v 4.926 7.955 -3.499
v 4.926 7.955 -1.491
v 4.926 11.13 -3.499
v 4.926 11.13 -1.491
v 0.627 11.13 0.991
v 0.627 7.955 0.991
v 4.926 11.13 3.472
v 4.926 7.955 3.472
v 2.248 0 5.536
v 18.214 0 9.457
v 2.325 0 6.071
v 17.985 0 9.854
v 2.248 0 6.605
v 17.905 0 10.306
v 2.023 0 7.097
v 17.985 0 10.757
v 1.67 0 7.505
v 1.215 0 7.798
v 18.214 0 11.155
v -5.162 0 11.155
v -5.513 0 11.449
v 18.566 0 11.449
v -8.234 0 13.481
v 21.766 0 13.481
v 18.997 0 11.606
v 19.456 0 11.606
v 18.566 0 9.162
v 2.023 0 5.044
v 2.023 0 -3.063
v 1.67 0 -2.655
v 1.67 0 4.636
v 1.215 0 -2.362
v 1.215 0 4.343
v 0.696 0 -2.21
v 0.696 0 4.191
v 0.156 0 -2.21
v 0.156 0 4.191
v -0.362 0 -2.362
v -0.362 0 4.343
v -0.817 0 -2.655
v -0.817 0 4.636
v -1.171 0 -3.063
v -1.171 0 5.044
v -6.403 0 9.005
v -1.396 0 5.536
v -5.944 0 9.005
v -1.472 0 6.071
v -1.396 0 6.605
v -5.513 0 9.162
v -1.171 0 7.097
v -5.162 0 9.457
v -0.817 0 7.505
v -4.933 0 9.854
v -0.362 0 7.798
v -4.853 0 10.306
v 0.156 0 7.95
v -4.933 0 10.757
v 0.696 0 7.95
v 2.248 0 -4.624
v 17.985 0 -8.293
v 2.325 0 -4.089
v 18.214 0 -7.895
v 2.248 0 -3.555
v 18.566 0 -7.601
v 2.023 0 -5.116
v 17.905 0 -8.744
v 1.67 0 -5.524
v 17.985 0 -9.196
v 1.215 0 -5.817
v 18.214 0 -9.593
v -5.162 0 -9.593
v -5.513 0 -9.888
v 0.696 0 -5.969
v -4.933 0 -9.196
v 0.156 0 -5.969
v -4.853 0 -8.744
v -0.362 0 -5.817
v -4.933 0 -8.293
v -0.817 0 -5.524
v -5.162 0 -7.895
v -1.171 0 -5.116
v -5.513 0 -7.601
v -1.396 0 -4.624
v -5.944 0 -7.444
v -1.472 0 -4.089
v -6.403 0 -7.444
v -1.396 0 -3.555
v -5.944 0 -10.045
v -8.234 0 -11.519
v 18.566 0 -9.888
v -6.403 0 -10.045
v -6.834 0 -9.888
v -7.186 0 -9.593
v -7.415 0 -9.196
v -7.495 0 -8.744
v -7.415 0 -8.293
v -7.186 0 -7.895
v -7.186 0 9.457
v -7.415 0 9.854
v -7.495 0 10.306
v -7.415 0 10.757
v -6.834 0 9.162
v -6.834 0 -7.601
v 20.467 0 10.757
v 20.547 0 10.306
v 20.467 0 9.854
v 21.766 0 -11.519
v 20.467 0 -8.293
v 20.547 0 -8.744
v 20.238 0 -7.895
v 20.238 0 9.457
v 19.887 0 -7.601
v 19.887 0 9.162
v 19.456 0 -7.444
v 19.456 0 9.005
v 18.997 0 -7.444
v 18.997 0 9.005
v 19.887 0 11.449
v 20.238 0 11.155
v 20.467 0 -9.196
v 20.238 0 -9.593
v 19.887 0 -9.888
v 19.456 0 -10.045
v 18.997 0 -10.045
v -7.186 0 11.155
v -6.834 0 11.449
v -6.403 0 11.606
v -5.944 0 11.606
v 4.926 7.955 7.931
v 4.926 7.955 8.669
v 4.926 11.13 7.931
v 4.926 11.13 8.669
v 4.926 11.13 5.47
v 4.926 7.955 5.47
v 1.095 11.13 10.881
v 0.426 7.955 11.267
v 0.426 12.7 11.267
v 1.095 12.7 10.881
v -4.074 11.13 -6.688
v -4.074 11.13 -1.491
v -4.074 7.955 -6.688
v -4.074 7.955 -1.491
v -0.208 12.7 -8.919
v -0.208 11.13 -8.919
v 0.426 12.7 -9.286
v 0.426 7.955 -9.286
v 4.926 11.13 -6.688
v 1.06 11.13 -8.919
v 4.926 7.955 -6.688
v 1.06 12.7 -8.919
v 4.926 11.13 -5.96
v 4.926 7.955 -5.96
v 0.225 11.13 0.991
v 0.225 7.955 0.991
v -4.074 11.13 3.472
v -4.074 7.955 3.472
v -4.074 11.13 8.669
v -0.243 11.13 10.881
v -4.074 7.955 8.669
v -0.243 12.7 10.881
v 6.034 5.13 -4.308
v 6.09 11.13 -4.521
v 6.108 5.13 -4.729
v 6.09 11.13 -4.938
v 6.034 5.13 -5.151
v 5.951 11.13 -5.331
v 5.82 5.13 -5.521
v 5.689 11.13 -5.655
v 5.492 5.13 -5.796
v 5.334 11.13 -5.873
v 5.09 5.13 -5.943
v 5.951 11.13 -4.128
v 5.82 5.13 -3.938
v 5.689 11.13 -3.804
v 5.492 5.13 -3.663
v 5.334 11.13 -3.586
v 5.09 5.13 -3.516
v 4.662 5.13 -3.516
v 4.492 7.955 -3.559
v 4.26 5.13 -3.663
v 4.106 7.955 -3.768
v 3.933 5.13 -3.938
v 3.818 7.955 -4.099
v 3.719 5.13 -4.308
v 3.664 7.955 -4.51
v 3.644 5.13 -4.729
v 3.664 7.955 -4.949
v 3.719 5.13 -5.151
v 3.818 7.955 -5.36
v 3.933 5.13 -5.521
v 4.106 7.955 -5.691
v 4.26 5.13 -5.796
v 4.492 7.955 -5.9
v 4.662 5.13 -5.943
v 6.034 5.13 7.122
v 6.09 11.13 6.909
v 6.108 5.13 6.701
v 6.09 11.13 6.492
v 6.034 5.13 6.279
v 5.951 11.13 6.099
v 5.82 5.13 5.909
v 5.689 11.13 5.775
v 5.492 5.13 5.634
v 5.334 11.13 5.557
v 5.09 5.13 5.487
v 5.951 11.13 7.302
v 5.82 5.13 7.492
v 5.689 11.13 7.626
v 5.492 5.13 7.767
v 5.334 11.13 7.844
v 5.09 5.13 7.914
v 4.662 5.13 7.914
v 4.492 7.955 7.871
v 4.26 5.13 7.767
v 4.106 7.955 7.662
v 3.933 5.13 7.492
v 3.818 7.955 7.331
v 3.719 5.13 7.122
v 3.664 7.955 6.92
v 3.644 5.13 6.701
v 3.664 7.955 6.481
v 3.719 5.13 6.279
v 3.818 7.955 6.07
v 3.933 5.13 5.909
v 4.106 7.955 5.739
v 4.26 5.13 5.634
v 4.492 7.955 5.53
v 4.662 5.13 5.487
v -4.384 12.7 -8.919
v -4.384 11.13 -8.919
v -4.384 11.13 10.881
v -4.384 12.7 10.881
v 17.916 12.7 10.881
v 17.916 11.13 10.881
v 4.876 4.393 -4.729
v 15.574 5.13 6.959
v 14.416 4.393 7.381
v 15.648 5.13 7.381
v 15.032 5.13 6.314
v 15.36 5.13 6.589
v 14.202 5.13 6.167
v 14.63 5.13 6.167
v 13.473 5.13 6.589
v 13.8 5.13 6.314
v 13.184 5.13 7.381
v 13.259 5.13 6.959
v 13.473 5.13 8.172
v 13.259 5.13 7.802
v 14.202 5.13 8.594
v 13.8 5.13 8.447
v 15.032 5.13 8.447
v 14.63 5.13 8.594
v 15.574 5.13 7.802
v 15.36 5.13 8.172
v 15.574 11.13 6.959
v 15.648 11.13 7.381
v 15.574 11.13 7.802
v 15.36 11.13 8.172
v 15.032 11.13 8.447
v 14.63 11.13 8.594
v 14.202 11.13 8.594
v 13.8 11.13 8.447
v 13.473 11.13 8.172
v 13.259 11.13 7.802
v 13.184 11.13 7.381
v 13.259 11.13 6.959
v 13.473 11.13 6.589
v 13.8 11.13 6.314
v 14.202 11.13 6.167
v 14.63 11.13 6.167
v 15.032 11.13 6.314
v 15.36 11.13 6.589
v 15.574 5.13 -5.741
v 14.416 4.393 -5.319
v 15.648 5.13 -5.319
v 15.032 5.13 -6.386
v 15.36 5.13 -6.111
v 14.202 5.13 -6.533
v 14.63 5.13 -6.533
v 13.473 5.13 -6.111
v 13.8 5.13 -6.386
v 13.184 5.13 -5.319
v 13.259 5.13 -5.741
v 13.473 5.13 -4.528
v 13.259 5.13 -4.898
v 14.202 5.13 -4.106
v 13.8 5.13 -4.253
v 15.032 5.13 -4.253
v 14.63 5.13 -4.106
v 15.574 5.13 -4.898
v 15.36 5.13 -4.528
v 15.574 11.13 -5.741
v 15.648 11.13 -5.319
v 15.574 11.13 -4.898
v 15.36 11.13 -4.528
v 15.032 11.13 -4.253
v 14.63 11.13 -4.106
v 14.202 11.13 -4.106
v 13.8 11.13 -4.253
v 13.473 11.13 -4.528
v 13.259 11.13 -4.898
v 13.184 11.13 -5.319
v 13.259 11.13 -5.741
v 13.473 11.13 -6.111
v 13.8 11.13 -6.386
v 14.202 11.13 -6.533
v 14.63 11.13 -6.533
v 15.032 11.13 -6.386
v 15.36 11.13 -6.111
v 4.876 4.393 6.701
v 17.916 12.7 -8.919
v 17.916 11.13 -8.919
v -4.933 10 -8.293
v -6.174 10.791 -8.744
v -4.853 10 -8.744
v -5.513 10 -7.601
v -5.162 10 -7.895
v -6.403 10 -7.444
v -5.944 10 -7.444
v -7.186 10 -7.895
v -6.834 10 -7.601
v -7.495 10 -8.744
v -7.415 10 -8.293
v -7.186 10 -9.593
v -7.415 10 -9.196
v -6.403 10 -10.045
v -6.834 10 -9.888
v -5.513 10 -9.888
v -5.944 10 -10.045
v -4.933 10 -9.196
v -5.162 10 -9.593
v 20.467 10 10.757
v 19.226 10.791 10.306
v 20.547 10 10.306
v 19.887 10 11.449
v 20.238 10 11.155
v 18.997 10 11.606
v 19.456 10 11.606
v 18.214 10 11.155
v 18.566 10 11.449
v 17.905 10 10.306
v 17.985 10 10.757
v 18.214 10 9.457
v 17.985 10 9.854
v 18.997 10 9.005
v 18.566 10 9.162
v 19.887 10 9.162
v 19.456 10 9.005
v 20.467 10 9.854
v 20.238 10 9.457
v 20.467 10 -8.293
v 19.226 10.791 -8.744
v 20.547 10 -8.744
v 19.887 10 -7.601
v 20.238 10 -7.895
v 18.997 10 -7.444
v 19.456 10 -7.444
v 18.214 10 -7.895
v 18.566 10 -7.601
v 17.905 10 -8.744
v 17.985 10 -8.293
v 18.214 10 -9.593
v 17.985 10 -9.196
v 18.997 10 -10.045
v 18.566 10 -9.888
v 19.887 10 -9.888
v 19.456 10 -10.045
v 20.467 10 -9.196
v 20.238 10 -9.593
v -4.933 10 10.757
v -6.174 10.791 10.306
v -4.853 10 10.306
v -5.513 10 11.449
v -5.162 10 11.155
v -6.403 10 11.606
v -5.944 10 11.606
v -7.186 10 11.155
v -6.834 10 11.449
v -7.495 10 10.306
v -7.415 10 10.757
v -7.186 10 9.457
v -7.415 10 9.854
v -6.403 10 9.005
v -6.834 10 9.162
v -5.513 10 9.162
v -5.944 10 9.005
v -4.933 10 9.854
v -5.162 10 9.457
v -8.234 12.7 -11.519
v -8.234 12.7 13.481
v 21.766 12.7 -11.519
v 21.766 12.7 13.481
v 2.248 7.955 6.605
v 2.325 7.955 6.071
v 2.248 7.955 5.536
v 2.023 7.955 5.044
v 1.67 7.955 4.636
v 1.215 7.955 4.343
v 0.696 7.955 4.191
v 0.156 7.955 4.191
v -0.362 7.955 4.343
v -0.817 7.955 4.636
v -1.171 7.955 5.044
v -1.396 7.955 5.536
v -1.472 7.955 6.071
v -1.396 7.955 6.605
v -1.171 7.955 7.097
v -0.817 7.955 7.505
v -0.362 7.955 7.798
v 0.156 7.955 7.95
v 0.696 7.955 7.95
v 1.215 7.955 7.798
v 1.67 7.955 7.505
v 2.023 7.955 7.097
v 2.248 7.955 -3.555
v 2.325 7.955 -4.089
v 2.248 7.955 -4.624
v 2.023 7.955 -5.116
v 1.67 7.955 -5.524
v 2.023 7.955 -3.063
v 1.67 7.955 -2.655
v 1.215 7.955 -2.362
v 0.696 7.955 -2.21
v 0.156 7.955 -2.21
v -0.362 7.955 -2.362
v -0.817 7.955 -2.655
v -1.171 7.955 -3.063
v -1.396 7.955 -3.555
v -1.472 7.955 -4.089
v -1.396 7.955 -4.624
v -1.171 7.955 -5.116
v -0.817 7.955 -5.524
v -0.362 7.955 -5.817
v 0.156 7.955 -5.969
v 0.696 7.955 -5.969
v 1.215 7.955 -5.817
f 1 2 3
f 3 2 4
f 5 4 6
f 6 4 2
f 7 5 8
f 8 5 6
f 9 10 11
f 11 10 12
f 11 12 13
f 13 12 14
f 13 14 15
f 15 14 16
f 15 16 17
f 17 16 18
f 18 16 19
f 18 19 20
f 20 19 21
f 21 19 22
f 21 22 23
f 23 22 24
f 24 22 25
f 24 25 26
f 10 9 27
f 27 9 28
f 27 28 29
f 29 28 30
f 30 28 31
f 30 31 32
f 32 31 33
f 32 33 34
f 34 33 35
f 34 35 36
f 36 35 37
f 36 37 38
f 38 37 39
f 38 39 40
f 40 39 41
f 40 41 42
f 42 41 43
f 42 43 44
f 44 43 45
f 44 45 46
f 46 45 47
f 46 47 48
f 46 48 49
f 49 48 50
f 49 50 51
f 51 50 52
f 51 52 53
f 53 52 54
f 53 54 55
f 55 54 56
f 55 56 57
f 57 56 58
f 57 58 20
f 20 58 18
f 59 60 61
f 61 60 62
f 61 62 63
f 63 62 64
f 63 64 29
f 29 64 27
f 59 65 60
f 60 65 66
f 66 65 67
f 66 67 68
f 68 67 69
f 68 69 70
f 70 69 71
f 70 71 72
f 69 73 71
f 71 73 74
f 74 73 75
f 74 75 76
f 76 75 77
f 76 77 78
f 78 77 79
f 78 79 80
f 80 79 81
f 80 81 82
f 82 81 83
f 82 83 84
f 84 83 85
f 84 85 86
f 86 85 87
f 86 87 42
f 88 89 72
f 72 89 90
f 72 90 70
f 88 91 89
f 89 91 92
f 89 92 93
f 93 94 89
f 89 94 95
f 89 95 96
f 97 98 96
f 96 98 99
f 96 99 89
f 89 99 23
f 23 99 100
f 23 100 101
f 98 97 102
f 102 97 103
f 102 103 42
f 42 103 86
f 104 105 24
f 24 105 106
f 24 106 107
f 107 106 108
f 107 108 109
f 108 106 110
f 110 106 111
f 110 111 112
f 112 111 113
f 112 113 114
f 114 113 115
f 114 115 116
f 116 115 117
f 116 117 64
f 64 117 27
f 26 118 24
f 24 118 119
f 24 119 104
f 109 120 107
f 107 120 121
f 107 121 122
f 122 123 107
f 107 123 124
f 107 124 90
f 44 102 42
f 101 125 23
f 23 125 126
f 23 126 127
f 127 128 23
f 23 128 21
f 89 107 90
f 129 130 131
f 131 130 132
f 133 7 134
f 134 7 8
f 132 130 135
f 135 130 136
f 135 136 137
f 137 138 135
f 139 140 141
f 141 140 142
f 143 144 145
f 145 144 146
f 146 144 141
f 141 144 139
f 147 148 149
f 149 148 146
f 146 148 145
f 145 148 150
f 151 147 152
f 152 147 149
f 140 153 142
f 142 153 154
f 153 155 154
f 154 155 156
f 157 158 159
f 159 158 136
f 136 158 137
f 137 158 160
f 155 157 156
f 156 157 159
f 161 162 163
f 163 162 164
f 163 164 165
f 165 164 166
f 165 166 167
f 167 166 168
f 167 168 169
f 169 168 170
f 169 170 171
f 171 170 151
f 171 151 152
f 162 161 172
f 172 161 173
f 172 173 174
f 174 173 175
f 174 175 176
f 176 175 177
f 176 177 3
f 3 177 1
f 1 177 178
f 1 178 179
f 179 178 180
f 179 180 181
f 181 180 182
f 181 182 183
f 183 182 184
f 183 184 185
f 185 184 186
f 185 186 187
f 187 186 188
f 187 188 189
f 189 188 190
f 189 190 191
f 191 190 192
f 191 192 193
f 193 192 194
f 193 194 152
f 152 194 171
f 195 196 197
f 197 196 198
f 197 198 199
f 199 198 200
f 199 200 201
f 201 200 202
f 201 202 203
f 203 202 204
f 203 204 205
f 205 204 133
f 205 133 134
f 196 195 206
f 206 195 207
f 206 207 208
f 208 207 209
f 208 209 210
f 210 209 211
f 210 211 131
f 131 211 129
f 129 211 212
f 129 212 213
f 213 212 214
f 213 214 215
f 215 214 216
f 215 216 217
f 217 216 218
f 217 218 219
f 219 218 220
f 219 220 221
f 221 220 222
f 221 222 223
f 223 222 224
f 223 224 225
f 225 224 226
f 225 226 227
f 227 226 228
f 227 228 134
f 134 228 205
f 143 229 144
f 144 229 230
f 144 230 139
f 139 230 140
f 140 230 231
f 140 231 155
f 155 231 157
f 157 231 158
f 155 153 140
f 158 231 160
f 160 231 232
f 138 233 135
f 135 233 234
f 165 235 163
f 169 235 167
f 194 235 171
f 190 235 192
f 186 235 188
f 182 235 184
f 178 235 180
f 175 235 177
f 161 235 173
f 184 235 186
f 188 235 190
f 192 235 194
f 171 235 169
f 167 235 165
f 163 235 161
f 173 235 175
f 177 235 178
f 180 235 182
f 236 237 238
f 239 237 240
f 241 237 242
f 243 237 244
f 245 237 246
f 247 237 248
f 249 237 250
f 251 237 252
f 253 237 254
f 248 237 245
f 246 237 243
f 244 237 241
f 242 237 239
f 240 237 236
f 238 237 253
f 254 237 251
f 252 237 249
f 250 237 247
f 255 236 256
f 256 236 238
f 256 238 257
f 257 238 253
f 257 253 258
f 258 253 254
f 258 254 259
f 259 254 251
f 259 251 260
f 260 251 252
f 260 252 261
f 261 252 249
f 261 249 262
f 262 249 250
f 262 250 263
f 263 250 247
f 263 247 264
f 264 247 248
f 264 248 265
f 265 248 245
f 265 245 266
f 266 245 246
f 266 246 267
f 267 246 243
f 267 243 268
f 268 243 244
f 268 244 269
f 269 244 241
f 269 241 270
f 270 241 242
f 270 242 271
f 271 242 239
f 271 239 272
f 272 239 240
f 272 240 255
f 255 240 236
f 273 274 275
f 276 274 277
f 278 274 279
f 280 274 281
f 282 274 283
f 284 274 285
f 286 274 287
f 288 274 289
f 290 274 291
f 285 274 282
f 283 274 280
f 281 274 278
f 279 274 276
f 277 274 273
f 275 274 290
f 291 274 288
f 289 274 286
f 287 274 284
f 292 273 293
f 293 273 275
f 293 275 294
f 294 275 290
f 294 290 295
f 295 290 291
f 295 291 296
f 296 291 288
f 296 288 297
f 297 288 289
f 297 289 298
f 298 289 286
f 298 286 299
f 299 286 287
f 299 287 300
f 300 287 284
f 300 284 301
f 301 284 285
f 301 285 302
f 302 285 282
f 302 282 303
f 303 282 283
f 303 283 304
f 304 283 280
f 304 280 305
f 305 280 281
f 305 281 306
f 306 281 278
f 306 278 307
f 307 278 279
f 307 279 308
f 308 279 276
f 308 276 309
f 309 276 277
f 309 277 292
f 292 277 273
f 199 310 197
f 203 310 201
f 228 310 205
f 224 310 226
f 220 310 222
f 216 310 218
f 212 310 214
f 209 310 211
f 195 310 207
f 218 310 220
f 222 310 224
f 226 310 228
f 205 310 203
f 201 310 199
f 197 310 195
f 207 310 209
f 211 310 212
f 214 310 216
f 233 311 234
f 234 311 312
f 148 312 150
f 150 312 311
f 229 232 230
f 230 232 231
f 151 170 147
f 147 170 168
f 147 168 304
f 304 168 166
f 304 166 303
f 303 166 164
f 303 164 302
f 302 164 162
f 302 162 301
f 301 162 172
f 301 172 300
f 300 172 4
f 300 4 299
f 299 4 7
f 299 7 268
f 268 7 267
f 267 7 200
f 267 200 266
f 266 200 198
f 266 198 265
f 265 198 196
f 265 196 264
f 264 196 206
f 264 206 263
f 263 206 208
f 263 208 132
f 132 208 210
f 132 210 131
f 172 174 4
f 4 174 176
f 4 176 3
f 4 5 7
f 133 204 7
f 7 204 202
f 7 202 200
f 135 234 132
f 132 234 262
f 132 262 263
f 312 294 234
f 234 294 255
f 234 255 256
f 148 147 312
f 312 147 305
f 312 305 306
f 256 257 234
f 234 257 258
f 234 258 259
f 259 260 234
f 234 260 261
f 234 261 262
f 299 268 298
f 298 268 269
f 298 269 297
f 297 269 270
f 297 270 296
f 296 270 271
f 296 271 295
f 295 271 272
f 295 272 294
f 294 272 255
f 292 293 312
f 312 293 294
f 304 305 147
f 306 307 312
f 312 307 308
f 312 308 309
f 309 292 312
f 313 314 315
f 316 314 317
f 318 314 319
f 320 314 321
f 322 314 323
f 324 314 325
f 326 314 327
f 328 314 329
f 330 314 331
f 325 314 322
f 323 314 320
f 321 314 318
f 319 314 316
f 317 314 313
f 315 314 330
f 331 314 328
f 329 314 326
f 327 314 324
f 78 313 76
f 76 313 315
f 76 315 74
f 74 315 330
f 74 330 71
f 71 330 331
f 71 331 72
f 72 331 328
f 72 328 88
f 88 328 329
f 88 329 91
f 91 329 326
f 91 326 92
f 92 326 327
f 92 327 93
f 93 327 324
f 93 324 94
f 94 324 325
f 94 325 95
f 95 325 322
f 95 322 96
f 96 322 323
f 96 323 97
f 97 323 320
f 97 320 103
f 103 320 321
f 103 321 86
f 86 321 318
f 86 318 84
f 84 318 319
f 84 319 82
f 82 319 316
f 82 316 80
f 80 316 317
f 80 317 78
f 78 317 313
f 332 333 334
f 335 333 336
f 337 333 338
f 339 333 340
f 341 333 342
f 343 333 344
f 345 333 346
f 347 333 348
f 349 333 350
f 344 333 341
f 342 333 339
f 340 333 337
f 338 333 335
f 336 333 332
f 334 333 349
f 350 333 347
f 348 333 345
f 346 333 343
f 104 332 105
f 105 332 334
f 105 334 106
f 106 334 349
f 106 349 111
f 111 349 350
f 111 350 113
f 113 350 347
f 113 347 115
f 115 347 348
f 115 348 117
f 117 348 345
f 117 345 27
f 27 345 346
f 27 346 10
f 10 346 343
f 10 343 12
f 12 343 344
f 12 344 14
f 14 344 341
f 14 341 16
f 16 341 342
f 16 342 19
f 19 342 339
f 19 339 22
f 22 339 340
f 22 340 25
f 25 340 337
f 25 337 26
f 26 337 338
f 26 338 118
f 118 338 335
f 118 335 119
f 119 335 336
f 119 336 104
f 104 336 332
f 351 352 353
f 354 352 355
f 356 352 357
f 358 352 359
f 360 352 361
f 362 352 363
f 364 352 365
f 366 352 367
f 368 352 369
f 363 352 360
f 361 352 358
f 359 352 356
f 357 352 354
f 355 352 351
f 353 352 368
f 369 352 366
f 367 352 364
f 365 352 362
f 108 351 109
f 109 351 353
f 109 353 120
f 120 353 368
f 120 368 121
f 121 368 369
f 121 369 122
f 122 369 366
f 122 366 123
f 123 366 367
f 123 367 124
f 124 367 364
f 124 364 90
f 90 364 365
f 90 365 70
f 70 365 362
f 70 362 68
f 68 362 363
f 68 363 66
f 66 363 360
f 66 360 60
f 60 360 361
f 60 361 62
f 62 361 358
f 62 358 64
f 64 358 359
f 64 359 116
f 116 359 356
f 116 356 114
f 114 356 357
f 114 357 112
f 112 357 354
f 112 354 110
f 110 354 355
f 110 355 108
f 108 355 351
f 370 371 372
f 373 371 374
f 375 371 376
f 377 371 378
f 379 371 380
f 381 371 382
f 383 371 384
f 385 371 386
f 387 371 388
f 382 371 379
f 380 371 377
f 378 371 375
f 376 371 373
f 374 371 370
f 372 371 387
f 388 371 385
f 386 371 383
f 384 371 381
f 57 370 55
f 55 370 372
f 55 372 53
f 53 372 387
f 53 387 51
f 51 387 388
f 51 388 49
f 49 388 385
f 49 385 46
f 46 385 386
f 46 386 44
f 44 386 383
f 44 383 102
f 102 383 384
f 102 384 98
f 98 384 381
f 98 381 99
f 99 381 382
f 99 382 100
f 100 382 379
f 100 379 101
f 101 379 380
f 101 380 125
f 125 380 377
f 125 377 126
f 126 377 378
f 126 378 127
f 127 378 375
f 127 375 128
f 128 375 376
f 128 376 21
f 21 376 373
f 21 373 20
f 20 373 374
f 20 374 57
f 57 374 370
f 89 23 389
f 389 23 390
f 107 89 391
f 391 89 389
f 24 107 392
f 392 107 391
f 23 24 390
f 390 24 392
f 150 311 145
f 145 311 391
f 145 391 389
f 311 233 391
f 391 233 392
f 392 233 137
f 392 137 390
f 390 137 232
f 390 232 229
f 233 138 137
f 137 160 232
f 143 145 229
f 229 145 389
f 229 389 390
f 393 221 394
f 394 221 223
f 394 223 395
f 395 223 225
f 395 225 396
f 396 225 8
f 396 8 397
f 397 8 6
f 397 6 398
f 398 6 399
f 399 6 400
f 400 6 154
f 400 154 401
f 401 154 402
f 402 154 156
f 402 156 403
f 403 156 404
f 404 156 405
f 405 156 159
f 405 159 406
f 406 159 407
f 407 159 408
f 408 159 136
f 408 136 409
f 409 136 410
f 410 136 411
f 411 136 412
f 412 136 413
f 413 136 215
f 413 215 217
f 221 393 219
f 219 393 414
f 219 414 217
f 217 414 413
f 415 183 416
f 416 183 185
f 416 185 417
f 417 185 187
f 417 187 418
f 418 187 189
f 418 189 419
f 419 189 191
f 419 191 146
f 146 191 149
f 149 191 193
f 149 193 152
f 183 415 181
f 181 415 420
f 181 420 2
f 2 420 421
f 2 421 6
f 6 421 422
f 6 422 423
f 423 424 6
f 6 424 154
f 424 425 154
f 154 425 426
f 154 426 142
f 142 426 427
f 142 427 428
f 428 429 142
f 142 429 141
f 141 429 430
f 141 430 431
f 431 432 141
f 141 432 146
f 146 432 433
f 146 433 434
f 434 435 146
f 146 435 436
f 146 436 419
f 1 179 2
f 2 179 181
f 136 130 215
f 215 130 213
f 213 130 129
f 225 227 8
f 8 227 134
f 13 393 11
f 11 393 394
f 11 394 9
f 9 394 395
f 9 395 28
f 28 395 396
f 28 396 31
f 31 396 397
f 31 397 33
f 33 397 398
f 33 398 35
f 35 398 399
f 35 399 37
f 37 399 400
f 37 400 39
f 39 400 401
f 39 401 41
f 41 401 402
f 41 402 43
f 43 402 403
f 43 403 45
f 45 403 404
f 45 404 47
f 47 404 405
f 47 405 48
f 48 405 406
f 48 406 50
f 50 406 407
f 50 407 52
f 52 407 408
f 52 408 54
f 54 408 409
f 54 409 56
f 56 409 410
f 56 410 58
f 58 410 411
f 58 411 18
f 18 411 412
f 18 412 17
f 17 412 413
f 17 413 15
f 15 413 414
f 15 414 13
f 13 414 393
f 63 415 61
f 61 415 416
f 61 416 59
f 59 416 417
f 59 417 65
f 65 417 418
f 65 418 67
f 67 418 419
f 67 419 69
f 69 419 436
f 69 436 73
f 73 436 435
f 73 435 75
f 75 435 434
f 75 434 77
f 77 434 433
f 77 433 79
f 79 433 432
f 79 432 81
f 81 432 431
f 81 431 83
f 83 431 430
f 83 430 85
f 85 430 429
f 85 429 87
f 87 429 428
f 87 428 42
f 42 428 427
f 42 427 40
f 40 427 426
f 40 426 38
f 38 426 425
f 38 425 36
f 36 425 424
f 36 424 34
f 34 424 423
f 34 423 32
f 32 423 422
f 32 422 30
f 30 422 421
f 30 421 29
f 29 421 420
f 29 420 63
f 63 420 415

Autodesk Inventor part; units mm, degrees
ref_plane "YZ Plane" through (0, 0, 0) normal (1, 0, 0) x (0, 1, 0)
ref_plane "XZ Plane" through (0, 0, 0) normal (0, 1, 0) x (-1, 0, 0)
ref_plane "XY Plane" through (0, 0, 0) normal (0, 0, 1) x (1, 0, 0)
sketch "Sketch1" plane through (0, 0, 0) normal (0, 1, 0) x (-1, 0, 0)
  line L0 (8.2338, 13.4805) -> (-21.7662, 13.4805)
  line L1 (-21.7662, 13.4805) -> (-21.7662, -11.5195)
  line L2 (-21.7662, -11.5195) -> (8.2338, -11.5195)
  line L3 (8.2338, -11.5195) -> (8.2338, 13.4805)
  point P0 (0, 0)
  dimension "d0" = 25
  dimension "d1" = 30
extrude "Extrusion1" add sketch "Sketch1" along normal blind 12.7
sketch "Sketch2" plane through (0, 0, 0) normal (0, -1, 0) x (1, 0, 0)
  line L0 (-8.2338, 13.4805) -> (21.7662, 13.4805) projected
  line L1 (21.7662, 13.4805) -> (21.7662, -11.5195) projected
  point P0 (0, 0)
  point P1 (19.2262, 10.3055)
  point P2 (19.2262, -8.7445)
  point P3 (-6.1738, -8.7445)
  point P4 (-6.1738, 10.3055)
  dimension "d4" = 3.175
  dimension "d5" = 2.54
  dimension "d6" = 19.05
  dimension "d7" = 2.54
  dimension "d8" = 25.4
  dimension "d9" = 3.175
  dimension "d10" = 19.05
  dimension "d11" = 0
hole "Hole1" at (19.2262, 0, 10.3055) at (19.2262, 0, -8.7445) at (-6.1738, 0, -8.7445) at (-6.1738, 0, 10.3055) direction (0, 1, 0) diameter 2.6416 depth 10 tip angle 118.188 thread size "6-32 UNC" class "2B" standard "ANSI Unified Screw Threads"
sketch "Sketch3" plane through (0, 12.7, 0) normal (0, 1, 0) x (1, 0, 0)
  line L0 (-4.3838, -10.8805) -> (17.9162, -10.8805)
  line L1 (17.9162, -10.8805) -> (17.9162, 8.9195)
  line L2 (17.9162, 8.9195) -> (-4.3838, 8.9195)
  line L3 (-4.3838, 8.9195) -> (-4.3838, -10.8805)
  line L4 (-8.2338, 11.5195) -> (-8.2338, -13.4805) projected
  line L5 (21.7662, 11.5195) -> (-8.2338, 11.5195) projected
  point P0 (0, 0)
  dimension "d19" = 19.8
  dimension "d20" = 22.3
  dimension "d22" = 3.85
  dimension "d23" = 2.6
extrude "Extrusion2" cut sketch "Sketch3" against normal blind 1.57
sketch "Sketch4" plane through (0, 11.13, 0) normal (0, 1, 0) x (1, 0, 0)
  line L0 (-4.3838, -10.8805) -> (-4.3838, 8.9195) projected
  line L1 (17.9162, -10.8805) -> (-4.3838, -10.8805) projected
  line L2 (17.9162, 8.9195) -> (17.9162, -10.8805) projected
  point P0 (0, 0)
  point P1 (14.4162, -7.3805)
  point P2 (14.4162, 5.3195)
  point P3 (4.8762, 4.7295)
  point P4 (4.8762, -6.7005)
  dimension "d28" = 0
  dimension "d30" = 9.26
  dimension "d31" = 4.18
  dimension "d32" = 11.43
  dimension "d33" = 3.5
  dimension "d34" = 3.5
  dimension "d35" = 3.5
  dimension "d36" = 12.7
hole "Hole2" at (14.4162, 11.13, 7.3805) at (14.4162, 11.13, -5.3195) at (4.8762, 11.13, -4.7295) at (4.8762, 11.13, 6.7005) direction (0, -1, 0) diameter 2.4638 depth 6 tip angle 118.188
sketch "Sketch5" plane through (0, 11.13, 0) normal (0, 1, 0) x (1, 0, 0)
  line L0 (17.9162, -10.8805) -> (-4.3838, -10.8805) projected
  line L1 (-4.3838, -10.8805) -> (-4.3838, 8.9195) projected
  line L2 (0.4262, -0.8744) -> (4.9262, -3.4724)
  line L3 (4.9262, -3.4724) -> (4.9262, -8.6686)
  line L4 (4.9262, -8.6686) -> (0.4262, -11.2667)
  line L5 (0.4262, -11.2667) -> (-4.0738, -8.6686)
  line L6 (-4.0738, -8.6686) -> (-4.0738, -3.4724)
  line L7 (-4.0738, -3.4724) -> (0.4262, -0.8744)
  line L8 (0.4262, -1.1067) -> (-4.0738, 1.4914)
  line L9 (-4.0738, 1.4914) -> (-4.0738, 6.6876)
  line L10 (-4.0738, 6.6876) -> (0.4262, 9.2856)
  line L11 (0.4262, 9.2856) -> (4.9262, 6.6876)
  line L12 (4.9262, 6.6876) -> (4.9262, 1.4914)
  line L13 (4.9262, 1.4914) -> (0.4262, -1.1067)
  point P0 (0.4262, -6.0705)
  point P1 (0.4262, 4.0895)
  point P2 (0.4262, -6.0705)
  point P3 (0.4262, 4.0895)
  dimension "d49" = 4.81
  dimension "d50" = 4.81
  dimension "d51" = 10.16
  dimension "d52" = 0
  dimension "d53" = 9
  dimension "d54" = 9
extrude "Extrusion3" cut sketch "Sketch5" along normal mid plane 6.35
sketch "Sketch7" plane through (0, 7.955, 0) normal (0, 1, 0) x (1, 0, 0)
  line L0 (0.2251, -0.9905) -> (-4.0738, 1.4914) projected
  line L1 (-4.0738, -3.4724) -> (0.2251, -0.9905) projected
  line L2 (-4.0738, -8.6686) -> (-4.0738, -3.4724) projected
  line L3 (-0.2426, -10.8805) -> (-4.0738, -8.6686) projected
  line L4 (4.9262, -8.6686) -> (1.0951, -10.8805) projected
  line L5 (4.9262, -7.9314) -> (4.9262, -8.6686) projected
  line L6 (4.9262, -3.4724) -> (4.9262, -5.4696) projected
  line L7 (0.6274, -0.9905) -> (4.9262, -3.4724) projected
  line L8 (4.9262, 1.4914) -> (0.6274, -0.9905) projected
  line L9 (4.9262, 3.4986) -> (4.9262, 1.4914) projected
  line L10 (4.9262, 6.6876) -> (4.9262, 5.9604) projected
  line L11 (1.0604, 8.9195) -> (4.9262, 6.6876) projected
  line L12 (-4.0738, 6.6876) -> (-0.208, 8.9195) projected
  line L13 (-4.0738, 1.4914) -> (-4.0738, 6.6876) projected
  circle A0 centre (0.4262, -6.0705) radius 1.8986
  circle A1 centre (0.4262, 4.0895) radius 1.8986
  point P0 (0, 0)
  dimension "d57" = 3.7973
  dimension "d58" = 3.7973
extrude "Extrusion4" cut sketch "Sketch7" against normal blind 25.4
properties part number "CurrentMonitorBlock"
